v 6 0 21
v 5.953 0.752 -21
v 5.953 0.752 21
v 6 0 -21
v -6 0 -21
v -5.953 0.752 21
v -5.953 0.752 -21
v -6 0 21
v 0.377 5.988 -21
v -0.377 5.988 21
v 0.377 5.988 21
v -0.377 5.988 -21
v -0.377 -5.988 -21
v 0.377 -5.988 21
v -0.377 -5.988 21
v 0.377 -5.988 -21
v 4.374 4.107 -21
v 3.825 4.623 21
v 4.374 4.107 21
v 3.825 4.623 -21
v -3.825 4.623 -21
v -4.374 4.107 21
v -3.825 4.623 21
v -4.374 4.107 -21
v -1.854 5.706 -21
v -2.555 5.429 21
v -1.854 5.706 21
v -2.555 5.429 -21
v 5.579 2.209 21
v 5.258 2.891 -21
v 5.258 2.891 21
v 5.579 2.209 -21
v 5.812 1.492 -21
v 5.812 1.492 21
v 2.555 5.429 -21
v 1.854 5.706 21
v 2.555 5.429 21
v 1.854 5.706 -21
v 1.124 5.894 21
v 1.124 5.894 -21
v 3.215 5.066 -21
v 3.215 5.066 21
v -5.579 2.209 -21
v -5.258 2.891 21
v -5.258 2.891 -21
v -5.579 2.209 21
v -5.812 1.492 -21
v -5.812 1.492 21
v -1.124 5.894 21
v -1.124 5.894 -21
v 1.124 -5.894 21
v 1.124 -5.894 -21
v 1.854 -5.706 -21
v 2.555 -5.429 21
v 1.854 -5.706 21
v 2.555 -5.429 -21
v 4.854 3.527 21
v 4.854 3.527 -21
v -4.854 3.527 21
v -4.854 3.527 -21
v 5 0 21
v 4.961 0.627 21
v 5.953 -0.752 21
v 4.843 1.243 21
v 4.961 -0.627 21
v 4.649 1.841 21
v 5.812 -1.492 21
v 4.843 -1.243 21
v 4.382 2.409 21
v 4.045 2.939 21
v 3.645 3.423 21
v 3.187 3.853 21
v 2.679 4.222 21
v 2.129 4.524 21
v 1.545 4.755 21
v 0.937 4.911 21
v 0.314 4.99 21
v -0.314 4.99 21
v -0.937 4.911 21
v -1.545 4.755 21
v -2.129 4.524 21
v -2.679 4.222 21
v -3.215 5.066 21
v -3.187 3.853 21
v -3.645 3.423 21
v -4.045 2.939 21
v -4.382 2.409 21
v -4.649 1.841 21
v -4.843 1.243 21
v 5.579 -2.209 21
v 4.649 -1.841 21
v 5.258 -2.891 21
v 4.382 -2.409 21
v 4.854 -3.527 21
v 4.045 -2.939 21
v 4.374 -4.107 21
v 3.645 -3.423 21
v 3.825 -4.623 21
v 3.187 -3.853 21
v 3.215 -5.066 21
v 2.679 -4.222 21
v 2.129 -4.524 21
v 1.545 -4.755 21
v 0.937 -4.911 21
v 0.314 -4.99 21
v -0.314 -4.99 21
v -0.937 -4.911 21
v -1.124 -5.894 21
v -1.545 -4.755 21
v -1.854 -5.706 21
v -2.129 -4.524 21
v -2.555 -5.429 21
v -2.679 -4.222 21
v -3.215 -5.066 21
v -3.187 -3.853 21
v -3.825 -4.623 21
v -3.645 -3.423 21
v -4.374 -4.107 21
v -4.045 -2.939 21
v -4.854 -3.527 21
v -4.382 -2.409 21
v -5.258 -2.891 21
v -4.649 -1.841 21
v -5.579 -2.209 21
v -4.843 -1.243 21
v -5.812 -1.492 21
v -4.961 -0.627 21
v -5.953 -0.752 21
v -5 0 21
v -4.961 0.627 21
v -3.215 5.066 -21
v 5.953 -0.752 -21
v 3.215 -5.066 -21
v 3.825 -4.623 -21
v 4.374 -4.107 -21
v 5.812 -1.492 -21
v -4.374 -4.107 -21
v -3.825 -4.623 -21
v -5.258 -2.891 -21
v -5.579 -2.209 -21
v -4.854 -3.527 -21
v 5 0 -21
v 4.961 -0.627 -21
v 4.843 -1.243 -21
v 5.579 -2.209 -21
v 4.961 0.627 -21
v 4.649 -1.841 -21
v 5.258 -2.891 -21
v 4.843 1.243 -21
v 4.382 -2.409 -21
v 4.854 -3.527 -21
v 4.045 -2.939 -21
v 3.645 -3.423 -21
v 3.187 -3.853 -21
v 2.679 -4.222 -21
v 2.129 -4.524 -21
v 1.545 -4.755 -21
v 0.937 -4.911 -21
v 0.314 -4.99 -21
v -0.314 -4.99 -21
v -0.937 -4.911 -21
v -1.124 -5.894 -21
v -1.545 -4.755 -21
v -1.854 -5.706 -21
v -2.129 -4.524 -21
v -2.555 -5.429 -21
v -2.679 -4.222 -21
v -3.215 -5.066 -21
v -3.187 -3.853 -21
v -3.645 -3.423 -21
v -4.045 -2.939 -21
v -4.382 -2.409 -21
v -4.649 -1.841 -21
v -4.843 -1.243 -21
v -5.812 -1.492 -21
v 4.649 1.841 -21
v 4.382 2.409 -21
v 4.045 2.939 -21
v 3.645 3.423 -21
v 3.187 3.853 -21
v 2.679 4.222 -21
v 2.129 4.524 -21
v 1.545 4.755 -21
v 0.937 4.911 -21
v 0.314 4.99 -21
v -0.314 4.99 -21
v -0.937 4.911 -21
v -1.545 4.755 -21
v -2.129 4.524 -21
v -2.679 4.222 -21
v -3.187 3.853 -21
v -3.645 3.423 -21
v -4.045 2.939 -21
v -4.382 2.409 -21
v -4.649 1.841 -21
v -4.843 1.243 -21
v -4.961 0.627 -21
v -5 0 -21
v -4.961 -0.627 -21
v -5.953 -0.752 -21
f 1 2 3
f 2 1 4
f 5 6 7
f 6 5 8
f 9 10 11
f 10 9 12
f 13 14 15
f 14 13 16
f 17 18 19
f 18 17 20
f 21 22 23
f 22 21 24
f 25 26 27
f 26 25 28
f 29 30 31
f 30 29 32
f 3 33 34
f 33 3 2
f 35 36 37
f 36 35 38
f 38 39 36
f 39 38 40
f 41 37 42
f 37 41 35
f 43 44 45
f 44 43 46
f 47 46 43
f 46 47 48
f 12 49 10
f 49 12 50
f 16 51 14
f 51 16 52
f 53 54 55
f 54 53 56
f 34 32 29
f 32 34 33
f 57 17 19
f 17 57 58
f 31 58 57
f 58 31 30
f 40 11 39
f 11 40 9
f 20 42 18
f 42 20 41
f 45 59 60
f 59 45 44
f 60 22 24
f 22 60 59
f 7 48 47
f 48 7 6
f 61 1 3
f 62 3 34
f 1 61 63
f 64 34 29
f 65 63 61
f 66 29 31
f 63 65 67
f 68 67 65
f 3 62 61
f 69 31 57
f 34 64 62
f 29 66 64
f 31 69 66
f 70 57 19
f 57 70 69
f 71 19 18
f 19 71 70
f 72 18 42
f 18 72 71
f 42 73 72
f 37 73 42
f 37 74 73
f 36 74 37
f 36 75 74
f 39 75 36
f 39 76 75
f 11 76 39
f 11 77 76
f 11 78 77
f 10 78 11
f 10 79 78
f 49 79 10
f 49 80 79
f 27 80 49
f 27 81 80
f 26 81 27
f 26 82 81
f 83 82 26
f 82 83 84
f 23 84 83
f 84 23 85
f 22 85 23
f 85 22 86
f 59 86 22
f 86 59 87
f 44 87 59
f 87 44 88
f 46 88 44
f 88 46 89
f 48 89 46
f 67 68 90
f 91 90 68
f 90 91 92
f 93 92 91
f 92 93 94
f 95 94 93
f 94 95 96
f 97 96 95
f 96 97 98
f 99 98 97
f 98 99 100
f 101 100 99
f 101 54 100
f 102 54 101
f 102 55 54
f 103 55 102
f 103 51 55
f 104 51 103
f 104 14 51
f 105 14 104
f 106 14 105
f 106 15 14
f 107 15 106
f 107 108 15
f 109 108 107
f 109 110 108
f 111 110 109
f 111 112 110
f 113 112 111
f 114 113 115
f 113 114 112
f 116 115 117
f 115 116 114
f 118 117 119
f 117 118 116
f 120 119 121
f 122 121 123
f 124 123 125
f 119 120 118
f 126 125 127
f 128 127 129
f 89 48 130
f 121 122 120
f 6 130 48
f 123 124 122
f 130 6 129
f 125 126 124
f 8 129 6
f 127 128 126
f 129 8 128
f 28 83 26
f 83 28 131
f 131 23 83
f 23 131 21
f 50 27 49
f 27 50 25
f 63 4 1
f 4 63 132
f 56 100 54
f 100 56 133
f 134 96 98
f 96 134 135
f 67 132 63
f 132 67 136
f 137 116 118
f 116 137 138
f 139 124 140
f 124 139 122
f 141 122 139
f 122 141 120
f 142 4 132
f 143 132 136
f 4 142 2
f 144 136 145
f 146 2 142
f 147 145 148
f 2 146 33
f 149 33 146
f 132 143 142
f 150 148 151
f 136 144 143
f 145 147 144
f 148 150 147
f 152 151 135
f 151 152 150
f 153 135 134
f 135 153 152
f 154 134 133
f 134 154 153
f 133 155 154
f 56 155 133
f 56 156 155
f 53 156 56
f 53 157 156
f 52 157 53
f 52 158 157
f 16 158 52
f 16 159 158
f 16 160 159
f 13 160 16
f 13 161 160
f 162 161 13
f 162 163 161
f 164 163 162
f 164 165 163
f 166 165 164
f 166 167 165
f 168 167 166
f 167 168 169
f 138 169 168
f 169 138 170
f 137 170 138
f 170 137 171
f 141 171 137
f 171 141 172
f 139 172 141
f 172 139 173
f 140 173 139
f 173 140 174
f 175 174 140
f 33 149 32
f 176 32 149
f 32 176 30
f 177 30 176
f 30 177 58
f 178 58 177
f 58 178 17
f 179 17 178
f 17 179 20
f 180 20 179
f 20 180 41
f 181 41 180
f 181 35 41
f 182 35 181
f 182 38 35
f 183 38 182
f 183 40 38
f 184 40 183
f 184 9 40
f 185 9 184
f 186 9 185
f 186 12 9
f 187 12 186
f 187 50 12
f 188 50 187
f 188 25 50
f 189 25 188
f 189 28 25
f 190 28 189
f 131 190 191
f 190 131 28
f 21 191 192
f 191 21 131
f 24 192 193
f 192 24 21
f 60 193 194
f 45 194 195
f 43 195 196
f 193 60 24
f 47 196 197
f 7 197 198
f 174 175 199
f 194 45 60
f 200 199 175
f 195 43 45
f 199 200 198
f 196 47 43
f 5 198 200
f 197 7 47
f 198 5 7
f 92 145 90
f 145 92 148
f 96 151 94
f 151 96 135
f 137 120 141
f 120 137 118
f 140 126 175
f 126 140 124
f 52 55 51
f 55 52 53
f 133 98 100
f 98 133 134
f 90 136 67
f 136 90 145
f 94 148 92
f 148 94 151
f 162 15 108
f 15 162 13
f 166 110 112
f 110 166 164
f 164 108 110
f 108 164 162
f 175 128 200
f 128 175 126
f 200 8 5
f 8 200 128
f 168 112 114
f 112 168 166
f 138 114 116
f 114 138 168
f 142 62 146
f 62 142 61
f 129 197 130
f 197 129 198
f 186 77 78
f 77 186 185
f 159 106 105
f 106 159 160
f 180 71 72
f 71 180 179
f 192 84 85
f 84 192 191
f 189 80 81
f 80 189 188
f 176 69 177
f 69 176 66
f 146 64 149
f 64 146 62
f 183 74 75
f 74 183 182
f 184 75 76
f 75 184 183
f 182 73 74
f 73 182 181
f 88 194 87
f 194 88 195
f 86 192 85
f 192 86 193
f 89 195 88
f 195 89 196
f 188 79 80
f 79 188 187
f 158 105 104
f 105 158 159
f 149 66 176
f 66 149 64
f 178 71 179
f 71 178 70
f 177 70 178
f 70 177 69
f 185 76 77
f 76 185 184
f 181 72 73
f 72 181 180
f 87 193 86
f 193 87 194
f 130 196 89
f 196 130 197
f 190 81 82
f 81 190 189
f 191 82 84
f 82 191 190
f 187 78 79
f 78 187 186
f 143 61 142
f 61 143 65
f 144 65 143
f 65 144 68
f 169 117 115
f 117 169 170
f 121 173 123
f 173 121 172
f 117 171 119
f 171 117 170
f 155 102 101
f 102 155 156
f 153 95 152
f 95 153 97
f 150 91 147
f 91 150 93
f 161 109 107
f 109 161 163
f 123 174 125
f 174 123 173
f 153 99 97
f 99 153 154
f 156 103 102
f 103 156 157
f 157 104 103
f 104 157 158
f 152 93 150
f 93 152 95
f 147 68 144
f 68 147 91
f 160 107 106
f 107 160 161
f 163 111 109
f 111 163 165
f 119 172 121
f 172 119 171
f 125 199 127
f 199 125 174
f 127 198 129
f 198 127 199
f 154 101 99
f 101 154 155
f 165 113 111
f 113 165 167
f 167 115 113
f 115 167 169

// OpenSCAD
$fn = 50;


difference() {
	union() {
		translate(v = [0, 0, -21.0000000000]) {
			cylinder(h = 42, r = 6.0000000000);
		}
	}
	union() {
		translate(v = [0, 0, -100.0000000000]) {
			cylinder(h = 200, r = 5);
		}
	}
}
